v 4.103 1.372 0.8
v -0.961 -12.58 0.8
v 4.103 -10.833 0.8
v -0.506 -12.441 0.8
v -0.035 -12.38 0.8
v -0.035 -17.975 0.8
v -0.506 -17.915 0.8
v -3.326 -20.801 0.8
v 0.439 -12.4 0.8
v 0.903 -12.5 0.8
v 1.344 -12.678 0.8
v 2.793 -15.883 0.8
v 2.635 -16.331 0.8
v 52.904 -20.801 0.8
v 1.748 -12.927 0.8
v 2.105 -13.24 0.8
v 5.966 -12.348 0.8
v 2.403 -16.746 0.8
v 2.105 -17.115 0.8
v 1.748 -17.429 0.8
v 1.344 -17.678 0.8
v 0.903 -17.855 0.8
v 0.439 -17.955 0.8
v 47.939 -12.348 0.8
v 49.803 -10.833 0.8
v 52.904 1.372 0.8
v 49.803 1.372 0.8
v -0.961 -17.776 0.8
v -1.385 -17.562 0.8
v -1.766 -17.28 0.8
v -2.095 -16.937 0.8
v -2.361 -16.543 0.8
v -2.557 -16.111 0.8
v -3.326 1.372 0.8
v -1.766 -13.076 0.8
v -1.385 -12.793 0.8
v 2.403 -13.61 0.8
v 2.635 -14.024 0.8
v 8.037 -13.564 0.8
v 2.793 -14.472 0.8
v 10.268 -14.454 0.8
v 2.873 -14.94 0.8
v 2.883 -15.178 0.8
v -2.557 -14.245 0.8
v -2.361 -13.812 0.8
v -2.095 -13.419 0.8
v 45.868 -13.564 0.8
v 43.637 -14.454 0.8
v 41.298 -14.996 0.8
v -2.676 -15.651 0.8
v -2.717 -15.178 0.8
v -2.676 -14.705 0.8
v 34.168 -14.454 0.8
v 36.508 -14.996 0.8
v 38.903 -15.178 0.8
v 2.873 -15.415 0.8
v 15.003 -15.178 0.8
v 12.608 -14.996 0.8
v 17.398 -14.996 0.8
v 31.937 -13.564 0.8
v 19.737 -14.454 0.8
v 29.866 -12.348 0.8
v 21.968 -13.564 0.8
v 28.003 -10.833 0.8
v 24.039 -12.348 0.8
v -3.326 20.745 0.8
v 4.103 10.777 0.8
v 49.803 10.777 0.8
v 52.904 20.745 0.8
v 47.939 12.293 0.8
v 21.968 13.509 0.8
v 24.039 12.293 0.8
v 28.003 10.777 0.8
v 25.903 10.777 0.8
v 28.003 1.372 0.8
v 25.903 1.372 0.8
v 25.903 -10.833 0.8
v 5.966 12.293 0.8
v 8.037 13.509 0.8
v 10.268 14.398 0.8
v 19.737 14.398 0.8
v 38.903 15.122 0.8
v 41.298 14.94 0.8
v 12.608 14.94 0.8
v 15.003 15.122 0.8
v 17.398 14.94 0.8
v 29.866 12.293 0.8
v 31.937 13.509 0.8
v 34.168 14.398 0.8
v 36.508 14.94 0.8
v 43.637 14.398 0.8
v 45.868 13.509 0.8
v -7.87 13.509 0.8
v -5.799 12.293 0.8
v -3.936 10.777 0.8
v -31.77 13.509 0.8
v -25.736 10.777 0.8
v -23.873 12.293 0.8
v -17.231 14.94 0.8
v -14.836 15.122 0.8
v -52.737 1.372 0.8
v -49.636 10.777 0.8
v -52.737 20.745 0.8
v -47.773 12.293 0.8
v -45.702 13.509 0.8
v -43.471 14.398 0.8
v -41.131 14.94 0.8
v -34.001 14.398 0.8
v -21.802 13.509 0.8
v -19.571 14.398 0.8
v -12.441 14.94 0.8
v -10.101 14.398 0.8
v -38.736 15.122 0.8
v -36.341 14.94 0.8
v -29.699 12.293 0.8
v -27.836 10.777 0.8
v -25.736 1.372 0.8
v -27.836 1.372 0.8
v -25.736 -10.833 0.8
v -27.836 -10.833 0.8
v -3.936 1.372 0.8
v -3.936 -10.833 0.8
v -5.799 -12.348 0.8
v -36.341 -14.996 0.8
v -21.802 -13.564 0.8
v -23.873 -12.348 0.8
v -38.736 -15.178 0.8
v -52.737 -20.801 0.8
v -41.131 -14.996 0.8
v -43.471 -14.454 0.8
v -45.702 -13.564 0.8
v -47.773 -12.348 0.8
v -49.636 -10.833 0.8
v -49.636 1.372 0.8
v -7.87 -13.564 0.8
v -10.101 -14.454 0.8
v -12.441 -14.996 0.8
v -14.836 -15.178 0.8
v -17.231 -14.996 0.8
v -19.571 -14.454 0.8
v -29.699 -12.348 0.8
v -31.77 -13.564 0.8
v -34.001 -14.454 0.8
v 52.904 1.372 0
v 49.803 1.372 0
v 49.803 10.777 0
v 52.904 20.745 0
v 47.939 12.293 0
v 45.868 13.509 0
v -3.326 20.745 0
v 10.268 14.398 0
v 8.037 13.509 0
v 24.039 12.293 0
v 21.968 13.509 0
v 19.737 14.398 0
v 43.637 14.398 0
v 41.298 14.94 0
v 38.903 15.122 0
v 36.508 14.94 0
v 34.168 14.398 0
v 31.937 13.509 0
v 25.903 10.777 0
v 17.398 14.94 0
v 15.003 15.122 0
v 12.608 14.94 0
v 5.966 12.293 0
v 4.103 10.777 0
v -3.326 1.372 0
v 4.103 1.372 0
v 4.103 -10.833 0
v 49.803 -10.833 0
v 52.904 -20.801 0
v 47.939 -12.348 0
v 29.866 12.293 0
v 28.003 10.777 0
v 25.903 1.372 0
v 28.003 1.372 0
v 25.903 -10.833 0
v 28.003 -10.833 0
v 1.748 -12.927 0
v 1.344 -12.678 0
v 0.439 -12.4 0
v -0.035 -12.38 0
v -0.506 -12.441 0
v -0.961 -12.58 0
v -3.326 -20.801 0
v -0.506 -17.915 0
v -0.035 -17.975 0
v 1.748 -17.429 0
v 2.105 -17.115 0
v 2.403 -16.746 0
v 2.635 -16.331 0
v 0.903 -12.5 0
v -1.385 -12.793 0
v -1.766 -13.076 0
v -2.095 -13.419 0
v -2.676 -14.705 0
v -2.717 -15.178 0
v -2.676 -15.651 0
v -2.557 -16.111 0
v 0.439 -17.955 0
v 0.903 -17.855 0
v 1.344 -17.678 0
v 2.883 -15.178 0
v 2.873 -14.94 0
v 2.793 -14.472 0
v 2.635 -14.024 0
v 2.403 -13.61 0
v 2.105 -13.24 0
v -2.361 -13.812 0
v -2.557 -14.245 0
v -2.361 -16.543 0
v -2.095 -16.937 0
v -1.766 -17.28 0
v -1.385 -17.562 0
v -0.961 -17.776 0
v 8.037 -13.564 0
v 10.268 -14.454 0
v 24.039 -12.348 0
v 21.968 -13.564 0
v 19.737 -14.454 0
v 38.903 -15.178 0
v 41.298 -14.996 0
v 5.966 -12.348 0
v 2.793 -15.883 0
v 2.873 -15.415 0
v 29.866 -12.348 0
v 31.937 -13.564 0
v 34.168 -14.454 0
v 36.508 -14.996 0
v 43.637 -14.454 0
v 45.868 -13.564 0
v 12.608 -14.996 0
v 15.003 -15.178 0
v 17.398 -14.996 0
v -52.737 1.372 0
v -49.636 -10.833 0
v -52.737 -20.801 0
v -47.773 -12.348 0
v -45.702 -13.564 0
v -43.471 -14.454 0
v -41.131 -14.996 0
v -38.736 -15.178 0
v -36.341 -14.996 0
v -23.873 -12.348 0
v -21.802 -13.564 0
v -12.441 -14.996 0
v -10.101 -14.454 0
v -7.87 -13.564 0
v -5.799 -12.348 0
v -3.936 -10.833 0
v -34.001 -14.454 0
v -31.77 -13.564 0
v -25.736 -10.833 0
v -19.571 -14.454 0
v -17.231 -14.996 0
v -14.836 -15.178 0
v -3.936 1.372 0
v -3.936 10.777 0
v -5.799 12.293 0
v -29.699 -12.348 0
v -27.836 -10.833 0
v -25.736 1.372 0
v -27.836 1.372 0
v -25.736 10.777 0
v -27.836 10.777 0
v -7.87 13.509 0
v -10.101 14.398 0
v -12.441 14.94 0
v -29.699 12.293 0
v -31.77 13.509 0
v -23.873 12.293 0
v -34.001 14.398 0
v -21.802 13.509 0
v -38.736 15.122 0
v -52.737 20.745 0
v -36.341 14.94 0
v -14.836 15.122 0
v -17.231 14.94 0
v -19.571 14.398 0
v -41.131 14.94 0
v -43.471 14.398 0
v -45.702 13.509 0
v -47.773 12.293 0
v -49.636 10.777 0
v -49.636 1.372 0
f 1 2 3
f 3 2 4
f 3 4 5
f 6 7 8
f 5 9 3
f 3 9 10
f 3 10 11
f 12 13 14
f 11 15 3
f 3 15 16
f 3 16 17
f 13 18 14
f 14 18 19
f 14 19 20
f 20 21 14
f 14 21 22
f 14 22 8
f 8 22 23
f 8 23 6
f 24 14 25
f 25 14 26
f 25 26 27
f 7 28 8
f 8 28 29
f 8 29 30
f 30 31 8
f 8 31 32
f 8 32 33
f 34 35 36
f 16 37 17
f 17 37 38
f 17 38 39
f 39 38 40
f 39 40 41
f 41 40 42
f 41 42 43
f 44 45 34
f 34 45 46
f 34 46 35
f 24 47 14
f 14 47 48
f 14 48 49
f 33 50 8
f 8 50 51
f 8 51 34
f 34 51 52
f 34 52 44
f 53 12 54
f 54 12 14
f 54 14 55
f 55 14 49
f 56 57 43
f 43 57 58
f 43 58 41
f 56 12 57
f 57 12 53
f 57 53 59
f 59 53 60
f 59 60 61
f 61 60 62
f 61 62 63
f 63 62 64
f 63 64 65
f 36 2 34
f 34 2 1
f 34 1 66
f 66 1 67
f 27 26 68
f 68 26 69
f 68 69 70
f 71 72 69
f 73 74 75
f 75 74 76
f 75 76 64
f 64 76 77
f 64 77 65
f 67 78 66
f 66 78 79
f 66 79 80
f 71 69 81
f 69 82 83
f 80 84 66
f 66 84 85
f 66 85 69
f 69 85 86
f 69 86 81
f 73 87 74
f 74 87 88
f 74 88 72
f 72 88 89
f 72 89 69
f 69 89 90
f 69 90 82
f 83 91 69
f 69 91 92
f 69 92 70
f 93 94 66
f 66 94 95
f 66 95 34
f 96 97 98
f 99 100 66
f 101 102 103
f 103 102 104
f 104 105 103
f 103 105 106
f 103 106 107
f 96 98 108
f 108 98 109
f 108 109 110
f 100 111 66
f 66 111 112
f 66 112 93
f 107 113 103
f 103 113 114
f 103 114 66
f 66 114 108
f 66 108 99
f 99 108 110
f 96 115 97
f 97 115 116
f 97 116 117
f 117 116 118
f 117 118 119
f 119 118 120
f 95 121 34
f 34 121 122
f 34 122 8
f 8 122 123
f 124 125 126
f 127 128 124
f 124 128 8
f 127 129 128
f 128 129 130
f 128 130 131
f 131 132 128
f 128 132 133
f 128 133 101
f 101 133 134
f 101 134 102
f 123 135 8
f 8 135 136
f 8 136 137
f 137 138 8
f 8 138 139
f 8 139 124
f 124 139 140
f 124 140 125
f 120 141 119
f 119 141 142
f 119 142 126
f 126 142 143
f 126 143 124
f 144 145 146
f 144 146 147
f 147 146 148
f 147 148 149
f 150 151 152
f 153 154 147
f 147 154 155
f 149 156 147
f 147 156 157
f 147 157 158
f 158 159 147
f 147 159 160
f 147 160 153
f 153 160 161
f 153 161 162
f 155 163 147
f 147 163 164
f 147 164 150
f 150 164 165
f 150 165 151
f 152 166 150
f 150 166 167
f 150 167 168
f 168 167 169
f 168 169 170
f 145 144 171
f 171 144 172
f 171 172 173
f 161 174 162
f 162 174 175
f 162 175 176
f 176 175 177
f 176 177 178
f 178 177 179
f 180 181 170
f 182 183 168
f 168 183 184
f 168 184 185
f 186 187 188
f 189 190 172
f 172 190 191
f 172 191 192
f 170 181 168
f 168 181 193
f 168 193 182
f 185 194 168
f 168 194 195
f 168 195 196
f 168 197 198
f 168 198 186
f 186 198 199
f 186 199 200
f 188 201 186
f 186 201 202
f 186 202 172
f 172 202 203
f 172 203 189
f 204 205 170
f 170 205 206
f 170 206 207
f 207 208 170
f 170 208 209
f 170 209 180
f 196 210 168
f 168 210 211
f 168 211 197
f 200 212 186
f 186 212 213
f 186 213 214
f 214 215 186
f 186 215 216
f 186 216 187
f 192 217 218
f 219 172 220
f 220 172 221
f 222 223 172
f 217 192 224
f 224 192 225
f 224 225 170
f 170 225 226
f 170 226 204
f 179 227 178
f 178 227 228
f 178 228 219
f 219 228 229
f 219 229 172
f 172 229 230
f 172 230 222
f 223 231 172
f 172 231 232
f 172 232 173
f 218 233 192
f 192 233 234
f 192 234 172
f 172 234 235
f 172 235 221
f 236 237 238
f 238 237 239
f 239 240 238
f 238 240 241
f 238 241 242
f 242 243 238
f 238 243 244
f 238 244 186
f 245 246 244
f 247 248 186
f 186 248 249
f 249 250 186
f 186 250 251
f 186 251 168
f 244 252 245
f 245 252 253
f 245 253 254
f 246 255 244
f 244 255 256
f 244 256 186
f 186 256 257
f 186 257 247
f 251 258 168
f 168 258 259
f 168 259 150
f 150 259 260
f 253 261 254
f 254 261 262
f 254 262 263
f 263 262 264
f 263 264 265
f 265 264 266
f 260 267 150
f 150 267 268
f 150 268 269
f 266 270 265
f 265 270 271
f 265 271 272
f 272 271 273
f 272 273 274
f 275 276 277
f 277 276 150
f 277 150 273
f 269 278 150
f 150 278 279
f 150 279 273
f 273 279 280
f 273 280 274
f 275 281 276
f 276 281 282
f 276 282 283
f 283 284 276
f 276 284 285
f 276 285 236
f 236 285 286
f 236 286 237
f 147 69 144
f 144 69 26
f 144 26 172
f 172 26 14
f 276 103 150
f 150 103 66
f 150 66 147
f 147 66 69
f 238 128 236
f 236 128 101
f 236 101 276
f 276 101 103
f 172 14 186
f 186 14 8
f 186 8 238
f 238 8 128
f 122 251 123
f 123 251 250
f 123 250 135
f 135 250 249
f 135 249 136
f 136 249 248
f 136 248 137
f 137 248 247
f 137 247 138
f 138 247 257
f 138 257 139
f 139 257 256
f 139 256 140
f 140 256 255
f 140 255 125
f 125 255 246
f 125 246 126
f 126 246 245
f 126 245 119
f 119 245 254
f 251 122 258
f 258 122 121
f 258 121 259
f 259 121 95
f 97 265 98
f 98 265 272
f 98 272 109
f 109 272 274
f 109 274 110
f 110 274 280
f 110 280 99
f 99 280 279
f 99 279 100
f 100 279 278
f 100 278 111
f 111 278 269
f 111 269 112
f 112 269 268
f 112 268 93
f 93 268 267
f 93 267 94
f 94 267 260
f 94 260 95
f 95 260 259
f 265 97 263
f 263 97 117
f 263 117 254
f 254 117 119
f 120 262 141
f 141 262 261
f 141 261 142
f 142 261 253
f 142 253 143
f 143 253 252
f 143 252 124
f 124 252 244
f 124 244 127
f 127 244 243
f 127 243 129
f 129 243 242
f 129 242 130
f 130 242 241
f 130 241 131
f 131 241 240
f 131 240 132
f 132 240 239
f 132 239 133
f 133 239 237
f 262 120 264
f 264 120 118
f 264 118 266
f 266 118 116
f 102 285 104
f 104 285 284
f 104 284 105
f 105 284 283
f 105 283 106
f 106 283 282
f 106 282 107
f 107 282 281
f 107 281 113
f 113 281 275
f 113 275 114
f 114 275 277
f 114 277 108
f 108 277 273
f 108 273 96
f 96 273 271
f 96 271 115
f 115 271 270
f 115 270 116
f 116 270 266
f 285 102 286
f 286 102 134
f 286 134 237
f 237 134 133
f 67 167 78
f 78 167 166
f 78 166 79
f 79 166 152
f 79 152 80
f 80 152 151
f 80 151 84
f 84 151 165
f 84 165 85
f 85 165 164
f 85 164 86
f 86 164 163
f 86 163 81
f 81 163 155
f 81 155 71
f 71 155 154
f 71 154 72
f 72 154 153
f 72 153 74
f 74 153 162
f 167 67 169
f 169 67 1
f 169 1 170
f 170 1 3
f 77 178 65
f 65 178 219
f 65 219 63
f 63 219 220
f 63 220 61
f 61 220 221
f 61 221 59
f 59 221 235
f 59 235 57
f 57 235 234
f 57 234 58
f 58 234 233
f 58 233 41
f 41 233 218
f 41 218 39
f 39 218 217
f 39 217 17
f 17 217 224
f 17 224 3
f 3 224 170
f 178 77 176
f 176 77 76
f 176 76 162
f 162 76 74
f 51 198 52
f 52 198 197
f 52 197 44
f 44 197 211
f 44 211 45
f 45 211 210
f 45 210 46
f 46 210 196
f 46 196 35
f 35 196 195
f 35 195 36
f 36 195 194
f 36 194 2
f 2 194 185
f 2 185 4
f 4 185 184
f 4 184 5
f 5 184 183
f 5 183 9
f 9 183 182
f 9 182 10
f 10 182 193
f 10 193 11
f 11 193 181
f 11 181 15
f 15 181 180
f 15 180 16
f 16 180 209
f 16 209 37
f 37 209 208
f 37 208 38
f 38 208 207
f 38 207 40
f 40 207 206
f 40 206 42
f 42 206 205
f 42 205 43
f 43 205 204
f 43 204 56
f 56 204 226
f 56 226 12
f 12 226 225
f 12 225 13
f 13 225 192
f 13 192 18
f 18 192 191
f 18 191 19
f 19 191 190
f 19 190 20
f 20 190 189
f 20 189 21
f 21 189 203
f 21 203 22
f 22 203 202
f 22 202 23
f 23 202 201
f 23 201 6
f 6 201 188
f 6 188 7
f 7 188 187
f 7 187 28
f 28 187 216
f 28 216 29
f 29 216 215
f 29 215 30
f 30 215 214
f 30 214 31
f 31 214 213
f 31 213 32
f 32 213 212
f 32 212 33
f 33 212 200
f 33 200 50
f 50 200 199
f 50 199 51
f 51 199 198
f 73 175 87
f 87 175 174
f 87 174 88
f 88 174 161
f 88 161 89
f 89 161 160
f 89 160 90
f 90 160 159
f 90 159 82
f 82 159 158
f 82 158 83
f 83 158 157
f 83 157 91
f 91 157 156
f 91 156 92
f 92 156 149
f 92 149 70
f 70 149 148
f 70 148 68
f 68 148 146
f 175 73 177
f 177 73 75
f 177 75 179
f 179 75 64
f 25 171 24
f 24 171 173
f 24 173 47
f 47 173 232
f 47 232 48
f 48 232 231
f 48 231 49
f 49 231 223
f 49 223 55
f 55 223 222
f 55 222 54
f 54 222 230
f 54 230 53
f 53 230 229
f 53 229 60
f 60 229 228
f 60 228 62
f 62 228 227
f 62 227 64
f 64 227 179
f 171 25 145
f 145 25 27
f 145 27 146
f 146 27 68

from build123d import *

# Parameters (mm, degrees)
SKETCH_1_W      = 105.64042879
SKETCH_1_H      = 41.546296754
SKETCH_1_R      = 2.8
EXTRUDE_2_DEPTH = 0.8


with BuildPart() as part:
    # Эскиз1 → Бобышка-Вытянуть2 (new body)
    with BuildSketch(Plane.XY):
        with Locations((0.083446622, -0.02774538)):
            Rectangle(SKETCH_1_W, SKETCH_1_H)
        with Locations((0.083446622, -15.17774538)):
            Circle(SKETCH_1_R, mode=Mode.SUBTRACT)
        with BuildLine():
            Line((-49.635877413, 10.77725462), (-49.635877413, -10.83274538))
            ThreePointArc((-49.635877413, -10.83274538), (-38.735877413, -15.17774538), (-27.835877413, -10.83274538))
            Line((-27.835877413, -10.83274538), (-27.835877413, 10.77725462))
            ThreePointArc((-27.835877413, 10.77725462), (-38.735877413, 15.12225462), (-49.635877413, 10.77725462))
        make_face(mode=Mode.SUBTRACT)
        with BuildLine():
            Line((-25.735877413, 10.77725462), (-25.735877413, -10.83274538))
            ThreePointArc((-25.735877413, -10.83274538), (-14.835877413, -15.17774538), (-3.935877413, -10.83274538))
            Line((-3.935877413, -10.83274538), (-3.935877413, 10.77725462))
            ThreePointArc((-3.935877413, 10.77725462), (-14.835877413, 15.12225462), (-25.735877413, 10.77725462))
        make_face(mode=Mode.SUBTRACT)
        with BuildLine():
            Line((4.102770658, 10.77725462), (4.102770658, -10.83274538))
            ThreePointArc((4.102770658, -10.83274538), (15.002770658, -15.17774538), (25.902770658, -10.83274538))
            Line((25.902770658, -10.83274538), (25.902770658, 10.77725462))
            ThreePointArc((25.902770658, 10.77725462), (15.002770658, 15.12225462), (4.102770658, 10.77725462))
        make_face(mode=Mode.SUBTRACT)
        with BuildLine():
            Line((28.002770658, 10.77725462), (28.002770658, -10.83274538))
            ThreePointArc((28.002770658, -10.83274538), (38.902770658, -15.17774538), (49.802770658, -10.83274538))
            Line((49.802770658, -10.83274538), (49.802770658, 10.77725462))
            ThreePointArc((49.802770658, 10.77725462), (38.902770658, 15.12225462), (28.002770658, 10.77725462))
        make_face(mode=Mode.SUBTRACT)
    extrude(amount=EXTRUDE_2_DEPTH)


solid = part.part
